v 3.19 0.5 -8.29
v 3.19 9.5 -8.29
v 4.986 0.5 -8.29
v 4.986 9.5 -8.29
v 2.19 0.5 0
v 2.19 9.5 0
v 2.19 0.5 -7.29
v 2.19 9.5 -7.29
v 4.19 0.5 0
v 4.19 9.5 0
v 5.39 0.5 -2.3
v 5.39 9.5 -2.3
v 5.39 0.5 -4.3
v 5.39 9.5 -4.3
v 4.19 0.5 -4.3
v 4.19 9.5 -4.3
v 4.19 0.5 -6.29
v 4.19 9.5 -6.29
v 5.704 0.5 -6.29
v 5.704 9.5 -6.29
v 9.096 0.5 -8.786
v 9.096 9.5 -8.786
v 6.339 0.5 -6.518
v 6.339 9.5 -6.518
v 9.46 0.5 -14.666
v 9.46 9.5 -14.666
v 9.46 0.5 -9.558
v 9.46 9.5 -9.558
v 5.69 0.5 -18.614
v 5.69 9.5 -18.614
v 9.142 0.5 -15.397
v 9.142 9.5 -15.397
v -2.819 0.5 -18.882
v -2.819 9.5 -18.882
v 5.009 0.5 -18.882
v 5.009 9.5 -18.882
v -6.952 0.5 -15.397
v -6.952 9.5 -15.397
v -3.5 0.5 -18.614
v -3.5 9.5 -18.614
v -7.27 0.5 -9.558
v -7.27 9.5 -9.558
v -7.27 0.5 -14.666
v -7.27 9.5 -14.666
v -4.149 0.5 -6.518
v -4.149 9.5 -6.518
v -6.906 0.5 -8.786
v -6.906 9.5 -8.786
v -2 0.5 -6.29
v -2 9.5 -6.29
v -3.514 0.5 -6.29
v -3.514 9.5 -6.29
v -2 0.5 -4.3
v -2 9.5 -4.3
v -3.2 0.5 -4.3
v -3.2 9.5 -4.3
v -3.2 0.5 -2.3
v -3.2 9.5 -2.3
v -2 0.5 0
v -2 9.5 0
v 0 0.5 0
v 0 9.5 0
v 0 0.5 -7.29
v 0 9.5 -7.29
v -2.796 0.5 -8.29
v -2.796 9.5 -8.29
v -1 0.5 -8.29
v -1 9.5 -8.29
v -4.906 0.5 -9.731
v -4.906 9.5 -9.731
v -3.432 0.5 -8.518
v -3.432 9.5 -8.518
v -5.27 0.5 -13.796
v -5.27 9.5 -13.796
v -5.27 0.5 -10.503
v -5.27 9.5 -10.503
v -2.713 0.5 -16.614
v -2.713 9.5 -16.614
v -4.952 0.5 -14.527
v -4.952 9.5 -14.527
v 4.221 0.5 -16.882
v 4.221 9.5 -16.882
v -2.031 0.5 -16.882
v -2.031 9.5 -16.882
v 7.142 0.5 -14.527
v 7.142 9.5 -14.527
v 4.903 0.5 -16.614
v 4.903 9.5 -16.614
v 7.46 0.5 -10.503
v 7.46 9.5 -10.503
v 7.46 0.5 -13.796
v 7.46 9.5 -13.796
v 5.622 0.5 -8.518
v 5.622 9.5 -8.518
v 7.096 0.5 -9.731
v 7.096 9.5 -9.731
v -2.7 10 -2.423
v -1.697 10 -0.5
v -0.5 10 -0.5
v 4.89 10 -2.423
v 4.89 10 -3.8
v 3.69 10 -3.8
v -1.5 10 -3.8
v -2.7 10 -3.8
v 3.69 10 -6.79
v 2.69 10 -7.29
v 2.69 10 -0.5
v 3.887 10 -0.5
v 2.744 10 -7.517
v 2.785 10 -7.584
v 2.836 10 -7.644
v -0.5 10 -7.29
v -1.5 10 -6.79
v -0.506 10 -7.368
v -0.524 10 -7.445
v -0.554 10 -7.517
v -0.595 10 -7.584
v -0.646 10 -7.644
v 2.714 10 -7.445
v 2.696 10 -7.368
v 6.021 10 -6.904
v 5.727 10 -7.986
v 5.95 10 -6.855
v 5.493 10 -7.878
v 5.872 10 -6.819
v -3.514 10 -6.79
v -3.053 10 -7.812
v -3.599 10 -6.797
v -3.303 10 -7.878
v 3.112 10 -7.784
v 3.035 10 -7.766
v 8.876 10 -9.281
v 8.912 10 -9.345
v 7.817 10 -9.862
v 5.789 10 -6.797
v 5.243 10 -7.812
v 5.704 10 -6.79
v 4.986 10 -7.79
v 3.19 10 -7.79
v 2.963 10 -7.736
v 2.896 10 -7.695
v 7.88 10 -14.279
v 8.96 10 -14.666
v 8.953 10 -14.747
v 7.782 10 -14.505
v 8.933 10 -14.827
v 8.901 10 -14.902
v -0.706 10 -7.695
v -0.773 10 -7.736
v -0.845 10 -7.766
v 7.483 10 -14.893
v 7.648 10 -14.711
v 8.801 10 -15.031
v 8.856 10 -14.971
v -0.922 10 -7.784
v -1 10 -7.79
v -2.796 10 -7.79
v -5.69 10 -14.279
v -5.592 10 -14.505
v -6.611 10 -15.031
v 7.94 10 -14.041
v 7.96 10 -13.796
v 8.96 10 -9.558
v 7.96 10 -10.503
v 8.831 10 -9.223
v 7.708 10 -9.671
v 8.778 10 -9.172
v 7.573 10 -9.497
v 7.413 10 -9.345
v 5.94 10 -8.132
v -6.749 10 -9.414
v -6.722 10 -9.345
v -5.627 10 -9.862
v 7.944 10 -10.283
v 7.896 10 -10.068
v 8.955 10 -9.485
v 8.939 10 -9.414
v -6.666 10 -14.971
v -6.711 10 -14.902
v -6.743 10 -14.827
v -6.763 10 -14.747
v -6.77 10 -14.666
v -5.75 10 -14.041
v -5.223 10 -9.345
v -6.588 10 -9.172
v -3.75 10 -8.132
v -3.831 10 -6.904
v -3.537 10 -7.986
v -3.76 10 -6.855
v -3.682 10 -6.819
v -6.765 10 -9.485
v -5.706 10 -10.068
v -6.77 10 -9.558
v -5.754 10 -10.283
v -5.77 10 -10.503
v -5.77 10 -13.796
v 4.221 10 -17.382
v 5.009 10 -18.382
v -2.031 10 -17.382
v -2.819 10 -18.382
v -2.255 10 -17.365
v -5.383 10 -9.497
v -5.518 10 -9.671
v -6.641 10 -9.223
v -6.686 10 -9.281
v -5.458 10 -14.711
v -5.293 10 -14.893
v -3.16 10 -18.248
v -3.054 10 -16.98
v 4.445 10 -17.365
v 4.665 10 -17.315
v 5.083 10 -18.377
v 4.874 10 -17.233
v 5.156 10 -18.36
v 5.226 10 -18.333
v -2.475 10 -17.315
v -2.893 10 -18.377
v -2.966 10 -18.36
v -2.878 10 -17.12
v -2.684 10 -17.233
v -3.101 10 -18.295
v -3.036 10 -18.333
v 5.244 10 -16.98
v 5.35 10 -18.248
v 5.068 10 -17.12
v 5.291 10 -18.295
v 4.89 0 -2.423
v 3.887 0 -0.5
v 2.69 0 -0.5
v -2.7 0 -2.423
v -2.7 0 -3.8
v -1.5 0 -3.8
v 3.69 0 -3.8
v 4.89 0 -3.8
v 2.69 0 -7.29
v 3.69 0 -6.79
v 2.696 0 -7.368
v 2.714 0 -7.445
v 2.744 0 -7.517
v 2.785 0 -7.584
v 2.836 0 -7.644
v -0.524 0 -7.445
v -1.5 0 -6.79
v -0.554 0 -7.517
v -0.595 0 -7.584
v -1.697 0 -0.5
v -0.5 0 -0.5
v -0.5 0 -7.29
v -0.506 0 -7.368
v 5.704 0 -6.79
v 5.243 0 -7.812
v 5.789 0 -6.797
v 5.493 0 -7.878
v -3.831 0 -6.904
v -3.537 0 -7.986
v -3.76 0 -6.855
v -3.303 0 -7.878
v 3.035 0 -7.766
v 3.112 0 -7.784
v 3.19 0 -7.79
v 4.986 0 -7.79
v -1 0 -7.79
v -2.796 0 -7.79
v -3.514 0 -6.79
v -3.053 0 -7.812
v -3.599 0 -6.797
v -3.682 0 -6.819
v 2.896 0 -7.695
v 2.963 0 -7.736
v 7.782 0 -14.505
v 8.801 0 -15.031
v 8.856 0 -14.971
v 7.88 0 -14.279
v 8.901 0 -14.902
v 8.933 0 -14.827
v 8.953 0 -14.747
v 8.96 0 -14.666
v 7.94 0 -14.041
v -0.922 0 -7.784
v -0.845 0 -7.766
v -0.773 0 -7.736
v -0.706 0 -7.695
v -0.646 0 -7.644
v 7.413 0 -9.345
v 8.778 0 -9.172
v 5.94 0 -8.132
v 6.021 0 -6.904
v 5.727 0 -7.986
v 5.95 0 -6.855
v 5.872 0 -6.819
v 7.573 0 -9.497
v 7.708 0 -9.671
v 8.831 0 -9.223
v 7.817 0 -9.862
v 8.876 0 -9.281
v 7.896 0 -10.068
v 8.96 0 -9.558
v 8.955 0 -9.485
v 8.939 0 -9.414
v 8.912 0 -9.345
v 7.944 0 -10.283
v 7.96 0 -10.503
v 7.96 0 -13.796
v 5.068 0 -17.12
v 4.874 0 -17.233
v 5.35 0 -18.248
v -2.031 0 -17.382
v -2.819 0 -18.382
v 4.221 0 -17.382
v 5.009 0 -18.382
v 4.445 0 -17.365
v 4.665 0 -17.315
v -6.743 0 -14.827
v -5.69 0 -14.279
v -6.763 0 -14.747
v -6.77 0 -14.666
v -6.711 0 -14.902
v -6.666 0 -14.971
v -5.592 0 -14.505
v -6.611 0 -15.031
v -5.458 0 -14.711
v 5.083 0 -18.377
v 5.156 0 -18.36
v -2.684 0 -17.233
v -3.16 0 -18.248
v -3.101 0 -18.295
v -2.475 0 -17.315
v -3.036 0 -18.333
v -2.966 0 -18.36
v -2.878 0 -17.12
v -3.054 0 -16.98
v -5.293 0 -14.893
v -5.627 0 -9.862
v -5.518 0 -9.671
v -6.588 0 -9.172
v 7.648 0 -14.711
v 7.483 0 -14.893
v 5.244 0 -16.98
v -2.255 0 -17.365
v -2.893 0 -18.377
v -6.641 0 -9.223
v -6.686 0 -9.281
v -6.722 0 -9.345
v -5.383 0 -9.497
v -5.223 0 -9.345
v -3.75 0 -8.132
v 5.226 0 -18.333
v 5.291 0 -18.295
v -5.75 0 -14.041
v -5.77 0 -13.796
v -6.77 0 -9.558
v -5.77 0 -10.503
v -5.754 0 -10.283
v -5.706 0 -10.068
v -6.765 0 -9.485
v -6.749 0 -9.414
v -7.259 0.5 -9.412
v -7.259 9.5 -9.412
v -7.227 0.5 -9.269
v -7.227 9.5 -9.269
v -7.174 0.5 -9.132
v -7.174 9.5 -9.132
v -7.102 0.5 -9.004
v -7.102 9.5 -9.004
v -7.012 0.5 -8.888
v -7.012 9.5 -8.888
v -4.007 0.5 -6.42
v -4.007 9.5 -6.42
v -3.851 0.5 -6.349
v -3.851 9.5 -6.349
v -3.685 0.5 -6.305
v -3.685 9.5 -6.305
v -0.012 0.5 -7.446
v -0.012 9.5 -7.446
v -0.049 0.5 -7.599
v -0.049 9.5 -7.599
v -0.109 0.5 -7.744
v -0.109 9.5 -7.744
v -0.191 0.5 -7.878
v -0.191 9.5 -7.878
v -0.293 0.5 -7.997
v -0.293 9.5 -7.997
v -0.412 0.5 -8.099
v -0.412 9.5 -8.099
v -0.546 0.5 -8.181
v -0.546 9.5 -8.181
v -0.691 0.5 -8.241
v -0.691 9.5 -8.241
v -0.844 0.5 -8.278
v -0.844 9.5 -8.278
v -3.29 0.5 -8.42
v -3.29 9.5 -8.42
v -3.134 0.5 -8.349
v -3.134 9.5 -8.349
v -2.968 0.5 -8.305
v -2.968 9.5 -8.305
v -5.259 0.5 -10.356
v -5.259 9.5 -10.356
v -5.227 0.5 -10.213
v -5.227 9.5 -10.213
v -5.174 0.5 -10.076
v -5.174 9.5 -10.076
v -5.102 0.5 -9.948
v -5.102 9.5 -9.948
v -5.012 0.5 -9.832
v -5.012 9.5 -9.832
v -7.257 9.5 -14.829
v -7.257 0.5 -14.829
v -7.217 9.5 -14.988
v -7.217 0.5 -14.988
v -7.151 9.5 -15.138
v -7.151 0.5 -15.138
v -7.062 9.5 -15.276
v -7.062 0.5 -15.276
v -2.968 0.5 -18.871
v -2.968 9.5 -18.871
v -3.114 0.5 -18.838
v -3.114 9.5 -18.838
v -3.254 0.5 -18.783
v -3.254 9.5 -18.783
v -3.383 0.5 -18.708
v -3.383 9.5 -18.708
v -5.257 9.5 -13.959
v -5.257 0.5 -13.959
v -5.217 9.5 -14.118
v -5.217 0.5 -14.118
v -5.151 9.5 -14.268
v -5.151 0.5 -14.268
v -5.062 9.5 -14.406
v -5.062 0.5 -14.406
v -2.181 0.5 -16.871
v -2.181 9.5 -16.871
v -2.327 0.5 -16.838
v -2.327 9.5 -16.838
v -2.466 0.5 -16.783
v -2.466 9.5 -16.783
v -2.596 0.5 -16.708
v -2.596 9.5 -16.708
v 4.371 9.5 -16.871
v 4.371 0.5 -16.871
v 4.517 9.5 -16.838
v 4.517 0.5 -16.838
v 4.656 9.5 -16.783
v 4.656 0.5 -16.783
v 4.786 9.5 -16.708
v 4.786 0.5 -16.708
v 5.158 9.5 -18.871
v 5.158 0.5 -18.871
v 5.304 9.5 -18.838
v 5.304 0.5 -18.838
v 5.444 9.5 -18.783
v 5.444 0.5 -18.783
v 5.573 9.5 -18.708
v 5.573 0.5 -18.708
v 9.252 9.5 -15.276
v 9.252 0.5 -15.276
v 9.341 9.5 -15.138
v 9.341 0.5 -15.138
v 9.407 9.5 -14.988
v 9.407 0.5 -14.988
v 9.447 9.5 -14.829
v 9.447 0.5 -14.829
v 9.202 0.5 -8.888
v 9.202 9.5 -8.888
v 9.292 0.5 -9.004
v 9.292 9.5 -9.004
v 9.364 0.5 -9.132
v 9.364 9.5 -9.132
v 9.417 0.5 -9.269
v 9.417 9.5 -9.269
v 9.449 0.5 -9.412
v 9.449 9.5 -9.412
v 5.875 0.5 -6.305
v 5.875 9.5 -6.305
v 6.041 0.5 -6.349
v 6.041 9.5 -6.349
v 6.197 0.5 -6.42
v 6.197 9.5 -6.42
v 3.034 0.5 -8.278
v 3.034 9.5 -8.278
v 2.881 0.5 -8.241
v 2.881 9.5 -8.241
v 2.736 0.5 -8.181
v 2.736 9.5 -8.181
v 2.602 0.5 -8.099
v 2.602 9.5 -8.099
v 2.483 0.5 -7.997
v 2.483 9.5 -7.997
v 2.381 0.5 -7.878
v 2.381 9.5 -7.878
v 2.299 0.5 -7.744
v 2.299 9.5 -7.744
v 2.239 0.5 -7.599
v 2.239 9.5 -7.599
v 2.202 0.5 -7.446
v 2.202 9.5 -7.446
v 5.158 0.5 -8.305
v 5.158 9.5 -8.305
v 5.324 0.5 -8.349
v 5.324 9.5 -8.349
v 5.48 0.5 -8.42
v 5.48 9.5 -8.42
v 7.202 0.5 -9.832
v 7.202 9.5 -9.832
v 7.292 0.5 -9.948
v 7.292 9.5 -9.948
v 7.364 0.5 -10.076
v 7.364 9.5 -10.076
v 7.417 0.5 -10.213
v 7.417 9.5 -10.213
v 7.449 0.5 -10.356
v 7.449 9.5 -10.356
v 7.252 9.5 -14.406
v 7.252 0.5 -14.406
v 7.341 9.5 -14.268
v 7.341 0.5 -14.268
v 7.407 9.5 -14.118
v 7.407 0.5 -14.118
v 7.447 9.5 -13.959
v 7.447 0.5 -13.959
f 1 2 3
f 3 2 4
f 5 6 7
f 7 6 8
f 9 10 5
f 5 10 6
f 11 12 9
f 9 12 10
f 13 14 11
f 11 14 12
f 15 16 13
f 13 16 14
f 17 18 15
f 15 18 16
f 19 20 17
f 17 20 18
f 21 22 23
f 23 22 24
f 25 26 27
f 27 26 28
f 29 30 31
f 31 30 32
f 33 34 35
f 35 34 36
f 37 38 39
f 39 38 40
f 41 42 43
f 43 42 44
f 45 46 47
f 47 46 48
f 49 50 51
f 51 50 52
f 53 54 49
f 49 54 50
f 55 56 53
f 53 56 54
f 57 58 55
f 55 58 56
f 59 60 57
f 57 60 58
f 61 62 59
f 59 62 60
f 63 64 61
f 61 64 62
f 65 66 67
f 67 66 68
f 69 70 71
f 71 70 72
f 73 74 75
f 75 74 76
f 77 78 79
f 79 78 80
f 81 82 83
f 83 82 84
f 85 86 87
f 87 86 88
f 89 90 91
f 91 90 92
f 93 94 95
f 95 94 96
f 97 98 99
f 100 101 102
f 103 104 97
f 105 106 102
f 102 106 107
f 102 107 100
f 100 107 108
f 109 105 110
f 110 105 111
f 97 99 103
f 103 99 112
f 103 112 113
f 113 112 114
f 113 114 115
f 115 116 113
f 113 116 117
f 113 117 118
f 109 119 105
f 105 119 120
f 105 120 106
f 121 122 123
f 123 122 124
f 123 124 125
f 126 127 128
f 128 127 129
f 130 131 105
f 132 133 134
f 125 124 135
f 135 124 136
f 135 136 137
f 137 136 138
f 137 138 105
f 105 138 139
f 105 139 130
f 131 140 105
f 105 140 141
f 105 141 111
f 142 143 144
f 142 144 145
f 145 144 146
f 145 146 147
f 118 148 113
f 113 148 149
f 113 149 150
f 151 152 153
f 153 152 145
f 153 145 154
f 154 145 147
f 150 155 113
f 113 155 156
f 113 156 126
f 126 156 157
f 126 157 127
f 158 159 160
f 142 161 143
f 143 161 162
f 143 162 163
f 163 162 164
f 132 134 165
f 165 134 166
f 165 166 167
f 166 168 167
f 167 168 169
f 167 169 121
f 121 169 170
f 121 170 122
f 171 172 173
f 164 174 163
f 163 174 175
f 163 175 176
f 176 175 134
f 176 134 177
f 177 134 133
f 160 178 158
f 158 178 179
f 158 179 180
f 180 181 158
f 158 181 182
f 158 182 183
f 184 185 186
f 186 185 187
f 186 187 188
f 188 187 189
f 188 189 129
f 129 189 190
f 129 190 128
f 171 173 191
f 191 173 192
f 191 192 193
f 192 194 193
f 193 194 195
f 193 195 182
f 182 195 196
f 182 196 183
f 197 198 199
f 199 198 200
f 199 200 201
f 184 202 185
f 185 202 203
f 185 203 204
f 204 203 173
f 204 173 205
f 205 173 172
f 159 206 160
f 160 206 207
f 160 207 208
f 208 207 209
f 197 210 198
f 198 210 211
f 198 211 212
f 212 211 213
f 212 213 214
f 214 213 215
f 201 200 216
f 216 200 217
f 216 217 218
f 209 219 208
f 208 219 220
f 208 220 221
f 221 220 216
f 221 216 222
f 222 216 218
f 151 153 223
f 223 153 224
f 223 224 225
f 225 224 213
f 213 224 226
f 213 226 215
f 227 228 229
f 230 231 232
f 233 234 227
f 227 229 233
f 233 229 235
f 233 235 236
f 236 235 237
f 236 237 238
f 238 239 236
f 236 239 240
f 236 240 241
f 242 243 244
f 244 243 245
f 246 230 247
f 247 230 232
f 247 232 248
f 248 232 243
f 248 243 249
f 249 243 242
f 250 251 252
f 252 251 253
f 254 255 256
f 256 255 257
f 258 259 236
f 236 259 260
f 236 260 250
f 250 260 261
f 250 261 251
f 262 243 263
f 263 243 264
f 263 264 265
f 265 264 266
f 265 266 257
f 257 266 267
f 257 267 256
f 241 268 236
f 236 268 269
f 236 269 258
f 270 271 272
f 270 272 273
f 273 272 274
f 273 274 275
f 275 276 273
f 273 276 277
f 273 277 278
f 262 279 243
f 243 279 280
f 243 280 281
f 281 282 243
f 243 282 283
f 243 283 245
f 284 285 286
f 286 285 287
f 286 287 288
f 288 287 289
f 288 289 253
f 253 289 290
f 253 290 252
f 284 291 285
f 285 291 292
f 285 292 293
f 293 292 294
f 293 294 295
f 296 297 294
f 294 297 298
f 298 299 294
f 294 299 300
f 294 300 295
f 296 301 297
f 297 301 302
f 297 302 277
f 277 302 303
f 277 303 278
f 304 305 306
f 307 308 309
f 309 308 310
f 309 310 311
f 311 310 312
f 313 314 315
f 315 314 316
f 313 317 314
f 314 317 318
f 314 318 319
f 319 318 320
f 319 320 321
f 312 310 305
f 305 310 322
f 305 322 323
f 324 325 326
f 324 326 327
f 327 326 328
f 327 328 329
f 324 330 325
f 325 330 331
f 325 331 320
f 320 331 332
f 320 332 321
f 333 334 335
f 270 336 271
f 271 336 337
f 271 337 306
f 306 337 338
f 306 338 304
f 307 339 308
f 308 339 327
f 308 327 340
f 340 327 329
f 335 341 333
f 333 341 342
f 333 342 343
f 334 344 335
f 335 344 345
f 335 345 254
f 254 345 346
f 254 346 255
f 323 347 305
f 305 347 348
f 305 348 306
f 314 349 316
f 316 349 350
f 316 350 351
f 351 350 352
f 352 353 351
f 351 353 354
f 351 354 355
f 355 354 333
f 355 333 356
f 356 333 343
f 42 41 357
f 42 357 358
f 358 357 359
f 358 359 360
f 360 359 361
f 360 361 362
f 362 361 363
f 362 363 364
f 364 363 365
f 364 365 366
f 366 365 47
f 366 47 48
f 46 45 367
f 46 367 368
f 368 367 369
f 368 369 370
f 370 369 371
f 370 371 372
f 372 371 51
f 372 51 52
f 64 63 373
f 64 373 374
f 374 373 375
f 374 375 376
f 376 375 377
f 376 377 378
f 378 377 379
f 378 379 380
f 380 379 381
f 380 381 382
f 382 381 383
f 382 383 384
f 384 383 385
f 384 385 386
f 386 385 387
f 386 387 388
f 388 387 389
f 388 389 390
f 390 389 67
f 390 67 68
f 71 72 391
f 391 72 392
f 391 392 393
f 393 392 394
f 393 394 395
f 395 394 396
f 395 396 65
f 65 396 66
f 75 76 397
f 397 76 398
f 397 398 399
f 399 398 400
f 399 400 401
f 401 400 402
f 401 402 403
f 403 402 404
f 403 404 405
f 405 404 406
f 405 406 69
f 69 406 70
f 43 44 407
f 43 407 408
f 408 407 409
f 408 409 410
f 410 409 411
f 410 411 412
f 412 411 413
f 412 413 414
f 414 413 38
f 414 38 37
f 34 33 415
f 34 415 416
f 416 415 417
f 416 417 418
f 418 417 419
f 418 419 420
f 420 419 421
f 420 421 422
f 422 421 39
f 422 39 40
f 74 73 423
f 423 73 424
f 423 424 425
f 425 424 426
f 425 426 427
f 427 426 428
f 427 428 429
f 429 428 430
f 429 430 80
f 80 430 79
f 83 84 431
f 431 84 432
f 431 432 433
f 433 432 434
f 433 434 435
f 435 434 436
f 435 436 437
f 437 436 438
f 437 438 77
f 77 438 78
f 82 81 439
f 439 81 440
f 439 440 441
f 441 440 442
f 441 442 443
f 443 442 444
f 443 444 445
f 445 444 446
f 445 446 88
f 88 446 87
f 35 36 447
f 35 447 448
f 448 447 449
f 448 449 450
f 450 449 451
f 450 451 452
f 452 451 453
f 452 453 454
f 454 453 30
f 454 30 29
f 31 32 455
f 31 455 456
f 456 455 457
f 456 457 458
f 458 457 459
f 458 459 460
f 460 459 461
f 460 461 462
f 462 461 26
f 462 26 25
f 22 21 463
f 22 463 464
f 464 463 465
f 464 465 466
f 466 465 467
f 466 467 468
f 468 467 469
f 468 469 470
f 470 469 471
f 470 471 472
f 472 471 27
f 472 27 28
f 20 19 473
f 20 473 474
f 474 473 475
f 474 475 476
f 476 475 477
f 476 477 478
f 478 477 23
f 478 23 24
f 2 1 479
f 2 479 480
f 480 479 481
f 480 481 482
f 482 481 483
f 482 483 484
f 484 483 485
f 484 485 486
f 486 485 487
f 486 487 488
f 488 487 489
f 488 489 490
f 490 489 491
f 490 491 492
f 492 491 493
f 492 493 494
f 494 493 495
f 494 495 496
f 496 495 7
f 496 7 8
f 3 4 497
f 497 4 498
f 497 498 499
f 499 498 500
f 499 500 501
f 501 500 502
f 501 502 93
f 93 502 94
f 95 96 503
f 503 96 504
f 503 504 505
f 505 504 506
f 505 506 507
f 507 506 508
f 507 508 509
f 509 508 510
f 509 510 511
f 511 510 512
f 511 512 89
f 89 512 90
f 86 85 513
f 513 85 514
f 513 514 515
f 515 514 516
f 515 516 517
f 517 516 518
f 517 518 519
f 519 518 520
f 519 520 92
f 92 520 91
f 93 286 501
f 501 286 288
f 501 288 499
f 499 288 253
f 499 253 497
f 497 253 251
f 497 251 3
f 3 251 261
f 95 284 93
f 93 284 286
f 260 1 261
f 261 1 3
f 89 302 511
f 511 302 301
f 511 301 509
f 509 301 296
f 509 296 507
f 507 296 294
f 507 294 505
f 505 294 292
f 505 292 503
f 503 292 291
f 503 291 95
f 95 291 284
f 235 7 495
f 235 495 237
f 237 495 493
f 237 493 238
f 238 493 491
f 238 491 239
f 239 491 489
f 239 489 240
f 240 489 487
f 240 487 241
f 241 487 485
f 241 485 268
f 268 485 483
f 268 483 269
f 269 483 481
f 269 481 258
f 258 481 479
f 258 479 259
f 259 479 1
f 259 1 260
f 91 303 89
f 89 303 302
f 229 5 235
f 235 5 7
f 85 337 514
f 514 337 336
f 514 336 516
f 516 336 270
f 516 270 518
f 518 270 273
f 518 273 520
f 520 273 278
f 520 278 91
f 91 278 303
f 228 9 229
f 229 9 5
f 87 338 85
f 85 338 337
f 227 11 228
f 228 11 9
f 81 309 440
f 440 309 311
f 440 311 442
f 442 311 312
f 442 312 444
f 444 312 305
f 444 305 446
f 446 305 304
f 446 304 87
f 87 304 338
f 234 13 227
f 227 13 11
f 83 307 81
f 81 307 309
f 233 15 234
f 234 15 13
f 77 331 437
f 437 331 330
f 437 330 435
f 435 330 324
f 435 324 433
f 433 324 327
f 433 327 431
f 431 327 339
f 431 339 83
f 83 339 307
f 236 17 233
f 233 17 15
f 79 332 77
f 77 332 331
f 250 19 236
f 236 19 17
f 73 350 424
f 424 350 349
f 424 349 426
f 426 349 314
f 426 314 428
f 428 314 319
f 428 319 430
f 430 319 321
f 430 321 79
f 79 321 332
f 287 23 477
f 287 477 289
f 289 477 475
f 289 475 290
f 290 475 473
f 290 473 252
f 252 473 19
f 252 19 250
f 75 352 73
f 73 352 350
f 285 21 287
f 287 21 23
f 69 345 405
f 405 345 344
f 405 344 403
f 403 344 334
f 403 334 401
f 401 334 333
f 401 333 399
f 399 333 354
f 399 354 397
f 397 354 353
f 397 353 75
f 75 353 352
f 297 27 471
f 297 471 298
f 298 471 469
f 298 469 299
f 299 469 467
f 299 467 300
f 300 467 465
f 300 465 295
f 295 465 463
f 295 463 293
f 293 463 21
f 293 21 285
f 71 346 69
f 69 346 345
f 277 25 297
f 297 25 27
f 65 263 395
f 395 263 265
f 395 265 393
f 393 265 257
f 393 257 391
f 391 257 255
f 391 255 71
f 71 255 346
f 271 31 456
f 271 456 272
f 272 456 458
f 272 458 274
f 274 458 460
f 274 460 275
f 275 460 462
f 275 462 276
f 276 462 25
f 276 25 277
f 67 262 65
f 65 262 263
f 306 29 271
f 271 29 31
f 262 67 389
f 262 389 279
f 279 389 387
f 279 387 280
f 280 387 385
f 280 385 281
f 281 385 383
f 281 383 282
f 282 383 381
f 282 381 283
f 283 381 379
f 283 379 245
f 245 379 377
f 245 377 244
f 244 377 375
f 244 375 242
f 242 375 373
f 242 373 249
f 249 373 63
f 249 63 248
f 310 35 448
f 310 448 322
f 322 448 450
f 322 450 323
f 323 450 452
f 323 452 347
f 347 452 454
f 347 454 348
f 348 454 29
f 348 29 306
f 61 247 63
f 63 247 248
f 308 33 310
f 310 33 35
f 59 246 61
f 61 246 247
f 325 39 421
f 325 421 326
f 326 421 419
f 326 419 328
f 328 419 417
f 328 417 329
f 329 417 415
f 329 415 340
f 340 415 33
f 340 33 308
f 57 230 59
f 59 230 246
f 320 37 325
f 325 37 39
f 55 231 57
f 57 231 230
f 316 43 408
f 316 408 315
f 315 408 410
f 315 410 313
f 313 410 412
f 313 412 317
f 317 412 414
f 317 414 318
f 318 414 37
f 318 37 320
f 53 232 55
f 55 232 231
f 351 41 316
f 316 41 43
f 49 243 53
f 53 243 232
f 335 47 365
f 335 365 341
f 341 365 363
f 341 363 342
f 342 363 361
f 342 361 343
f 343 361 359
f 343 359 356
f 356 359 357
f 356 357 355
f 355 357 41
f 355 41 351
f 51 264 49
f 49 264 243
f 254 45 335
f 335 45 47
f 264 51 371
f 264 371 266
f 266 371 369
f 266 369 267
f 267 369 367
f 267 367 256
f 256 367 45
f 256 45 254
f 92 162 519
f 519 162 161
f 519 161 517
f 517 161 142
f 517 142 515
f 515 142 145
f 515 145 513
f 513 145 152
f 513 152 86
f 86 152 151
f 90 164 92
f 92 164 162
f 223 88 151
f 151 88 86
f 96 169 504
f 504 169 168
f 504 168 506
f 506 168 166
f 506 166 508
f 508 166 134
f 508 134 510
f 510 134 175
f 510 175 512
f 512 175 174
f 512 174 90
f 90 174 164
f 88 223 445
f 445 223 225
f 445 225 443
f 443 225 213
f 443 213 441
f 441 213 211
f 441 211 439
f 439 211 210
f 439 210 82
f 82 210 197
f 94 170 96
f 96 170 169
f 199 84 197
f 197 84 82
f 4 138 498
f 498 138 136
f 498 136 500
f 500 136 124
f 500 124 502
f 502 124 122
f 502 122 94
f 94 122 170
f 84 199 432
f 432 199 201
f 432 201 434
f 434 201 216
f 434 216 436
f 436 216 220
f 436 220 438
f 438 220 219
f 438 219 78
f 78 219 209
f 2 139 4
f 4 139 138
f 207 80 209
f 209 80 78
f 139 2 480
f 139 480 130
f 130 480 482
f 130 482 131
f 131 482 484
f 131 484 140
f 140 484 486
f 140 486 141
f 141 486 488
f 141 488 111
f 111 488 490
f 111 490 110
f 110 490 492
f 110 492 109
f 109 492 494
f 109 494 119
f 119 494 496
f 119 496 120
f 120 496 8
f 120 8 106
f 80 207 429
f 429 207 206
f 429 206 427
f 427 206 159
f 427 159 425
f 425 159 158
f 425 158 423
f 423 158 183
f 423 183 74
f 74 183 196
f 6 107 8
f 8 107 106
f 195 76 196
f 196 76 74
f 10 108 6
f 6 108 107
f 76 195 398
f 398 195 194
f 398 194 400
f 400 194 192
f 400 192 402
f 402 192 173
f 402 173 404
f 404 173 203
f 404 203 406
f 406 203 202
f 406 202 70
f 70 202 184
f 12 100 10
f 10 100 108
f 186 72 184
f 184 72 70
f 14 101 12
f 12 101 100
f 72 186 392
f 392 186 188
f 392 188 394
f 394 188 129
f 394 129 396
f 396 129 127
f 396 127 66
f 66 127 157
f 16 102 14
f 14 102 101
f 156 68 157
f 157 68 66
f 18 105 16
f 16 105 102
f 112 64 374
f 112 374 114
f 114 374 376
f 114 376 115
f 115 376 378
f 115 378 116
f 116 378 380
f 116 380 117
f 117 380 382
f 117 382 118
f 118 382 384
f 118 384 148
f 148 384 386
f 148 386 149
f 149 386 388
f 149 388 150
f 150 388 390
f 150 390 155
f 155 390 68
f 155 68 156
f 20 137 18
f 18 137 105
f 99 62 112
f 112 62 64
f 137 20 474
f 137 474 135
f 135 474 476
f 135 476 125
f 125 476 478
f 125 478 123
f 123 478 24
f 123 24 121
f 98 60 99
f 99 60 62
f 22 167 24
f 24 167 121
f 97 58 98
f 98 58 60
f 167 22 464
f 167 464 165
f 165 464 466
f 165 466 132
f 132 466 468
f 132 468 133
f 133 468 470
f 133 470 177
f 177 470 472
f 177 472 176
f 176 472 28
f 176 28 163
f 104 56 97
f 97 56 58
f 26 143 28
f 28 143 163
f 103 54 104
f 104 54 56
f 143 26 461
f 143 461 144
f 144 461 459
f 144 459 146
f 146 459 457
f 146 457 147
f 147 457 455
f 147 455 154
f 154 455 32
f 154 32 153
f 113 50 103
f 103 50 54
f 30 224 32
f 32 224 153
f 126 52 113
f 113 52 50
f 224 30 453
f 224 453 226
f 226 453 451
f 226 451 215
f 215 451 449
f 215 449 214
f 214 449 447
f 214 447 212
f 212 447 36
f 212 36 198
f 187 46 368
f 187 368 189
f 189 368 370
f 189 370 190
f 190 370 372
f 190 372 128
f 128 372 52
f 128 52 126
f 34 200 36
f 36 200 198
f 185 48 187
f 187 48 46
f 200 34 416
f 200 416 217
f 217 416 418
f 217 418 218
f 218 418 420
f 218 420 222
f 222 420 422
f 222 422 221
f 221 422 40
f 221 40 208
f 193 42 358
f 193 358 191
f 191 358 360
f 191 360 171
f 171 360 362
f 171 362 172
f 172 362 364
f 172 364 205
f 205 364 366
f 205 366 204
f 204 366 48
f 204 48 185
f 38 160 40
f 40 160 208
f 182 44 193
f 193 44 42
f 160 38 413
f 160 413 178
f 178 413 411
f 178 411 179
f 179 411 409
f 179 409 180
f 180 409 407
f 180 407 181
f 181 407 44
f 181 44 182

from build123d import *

# Parameters (mm, degrees)
BOSS_EXTRUDE1_DEPTH = 10
FILLET1_R           = 1
CHAMFER1_SIZE       = 0.5


with BuildPart() as part:
    # Sketch1 → Boss-Extrude1 (new body)
    with BuildSketch(Plane(origin=(0, 0, 0), x_dir=(1, 0, 0), z_dir=(0, 1, 0))):
        Polygon((2.19, 0), (4.19, 0), (5.39, 2.3), (5.39, 4.3), (4.19, 4.3), (4.19, 6.29), (6.062127702, 6.29), (9.46014997, 9.086335224), (9.46014997, 15.100590628), (5.402376873, 18.882324593), (-3.212376873, 18.882324593), (-7.27014997, 15.100590628), (-7.27014997, 9.086335224), (-3.872127702, 6.29), (-2, 6.29), (-2, 4.3), (-3.2, 4.3), (-3.2, 2.3), (-2, 0), (0, 0), (0, 8.29), (-3.155, 8.29), (-5.27014997, 10.030620837), (-5.27014997, 14.230620837), (-2.424891086, 16.882324593), (4.614891086, 16.882324593), (7.46014997, 14.230620837), (7.46014997, 10.030620837), (5.345, 8.29), (2.19, 8.29), align=None)
    extrude(amount=BOSS_EXTRUDE1_DEPTH)

    # Fillet1
    fillet1_edges = [part.edges().sort_by_distance(p)[0] for p in [
        (5.345, 5, -8.29),
        (7.46014997, 5, -10.030620837),
        (7.46014997, 5, -14.230620837),
        (4.614891086, 5, -16.882324593),
        (-2.424891086, 5, -16.882324593),
        (-5.27014997, 5, -14.230620837),
        (-5.27014997, 5, -10.030620837),
        (-3.155, 5, -8.29),
        (0, 5, -8.29),
        (-3.872127702, 5, -6.29),
        (-7.27014997, 5, -9.086335224),
        (-7.27014997, 5, -15.100590628),
        (-3.212376873, 5, -18.882324593),
        (5.402376873, 5, -18.882324593),
        (9.46014997, 5, -15.100590628),
        (9.46014997, 5, -9.086335224),
        (6.062127702, 5, -6.29),
        (2.19, 5, -8.29),
    ]]
    fillet(fillet1_edges, radius=FILLET1_R)

    # Chamfer1
    chamfer1_edges = [part.edges().sort_by_distance(p)[0] for p in [
        (9.364426343, 0, -9.131530446),
        (9.377152184, 0, -15.064487844),
        (5.375000217, 0, -18.812795323),
        (-3.185000217, 0, -18.812795323),
        (-7.187152184, 0, -15.064487844),
        (-0.292893219, 0, -7.997106781),
        (-3.851086274, 0, -6.348682512),
        (-7.174426343, 0, -9.131530446),
        (-7.27014997, 10, -12.112041882),
        (4.088218075, 10, -8.29),
        (2.19, 10, -3.645),
        (4.946781925, 10, -6.29),
        (7.71728843, 10, -7.652081788),
        (9.46014997, 10, -12.112041882),
        (7.416178096, 10, -17.005516722),
        (1.095, 10, -18.882324593),
        (-5.226178096, 10, -17.005516722),
        (-2.756781925, 10, -6.29),
        (0, 10, -3.645),
        (-1.898218075, 10, -8.29),
        (-4.168724579, 10, -9.124224594),
        (-5.27014997, 10, -12.149199793),
        (-3.832435203, 10, -15.570531827),
        (1.095, 10, -16.882324593),
        (6.022435203, 10, -15.570531827),
        (7.46014997, 10, -12.149199793),
        (6.358724579, 10, -9.124224594),
        (2.482893219, 10, -7.997106781),
        (6.041086274, 10, -6.348682512),
        (9.364426343, 10, -9.131530446),
        (9.377152184, 10, -15.064487844),
        (5.375000217, 10, -18.812795323),
        (-3.185000217, 10, -18.812795323),
        (-7.187152184, 10, -15.064487844),
        (-0.292893219, 10, -7.997106781),
        (-3.851086274, 10, -6.348682512),
        (-7.174426343, 10, -9.131530446),
        (3.19, 10, 0),
        (-3.133958573, 0, -8.348682512),
        (-3.133958573, 10, -8.348682512),
        (-5.174426343, 0, -10.075816059),
        (-5.174426343, 10, -10.075816059),
        (-5.187152184, 0, -14.194518054),
        (-5.187152184, 10, -14.194518054),
        (-2.39751443, 0, -16.812795323),
        (-2.39751443, 10, -16.812795323),
        (4.58751443, 0, -16.812795323),
        (4.58751443, 10, -16.812795323),
        (5.323958573, 0, -8.348682512),
        (5.323958573, 10, -8.348682512),
        (7.364426343, 0, -10.075816059),
        (7.364426343, 10, -10.075816059),
        (7.377152184, 0, -14.194518054),
        (7.377152184, 10, -14.194518054),
        (4.79, 10, -1.15),
        (5.39, 10, -3.3),
        (4.79, 10, -4.3),
        (4.19, 10, -5.295),
        (-1, 0, 0),
        (-2.6, 0, -1.15),
        (-3.2, 0, -3.3),
        (-2.6, 0, -4.3),
        (-2, 0, -5.295),
        (4.19, 0, -5.295),
        (4.79, 0, -4.3),
        (5.39, 0, -3.3),
        (4.79, 0, -1.15),
        (3.19, 0, 0),
        (-2, 10, -5.295),
        (-2.6, 10, -4.3),
        (-3.2, 10, -3.3),
        (-2.6, 10, -1.15),
        (-1, 10, 0),
        (-5.52728843, 0, -7.652081788),
        (-5.52728843, 10, -7.652081788),
        (4.088218075, 0, -8.29),
        (6.358724579, 0, -9.124224594),
        (7.46014997, 0, -12.149199793),
        (6.022435203, 0, -15.570531827),
        (1.095, 0, -16.882324593),
        (-3.832435203, 0, -15.570531827),
        (-5.27014997, 0, -12.149199793),
        (-4.168724579, 0, -9.124224594),
        (-1.898218075, 0, -8.29),
        (0, 0, -3.645),
        (-2.756781925, 0, -6.29),
        (-7.27014997, 0, -12.112041882),
        (-5.226178096, 0, -17.005516722),
        (1.095, 0, -18.882324593),
        (7.416178096, 0, -17.005516722),
        (9.46014997, 0, -12.112041882),
        (7.71728843, 0, -7.652081788),
        (4.946781925, 0, -6.29),
        (2.19, 0, -3.645),
        (2.482893219, 0, -7.997106781),
        (6.041086274, 0, -6.348682512),
    ]]
    chamfer(chamfer1_edges, length=CHAMFER1_SIZE)


solid = part.part
